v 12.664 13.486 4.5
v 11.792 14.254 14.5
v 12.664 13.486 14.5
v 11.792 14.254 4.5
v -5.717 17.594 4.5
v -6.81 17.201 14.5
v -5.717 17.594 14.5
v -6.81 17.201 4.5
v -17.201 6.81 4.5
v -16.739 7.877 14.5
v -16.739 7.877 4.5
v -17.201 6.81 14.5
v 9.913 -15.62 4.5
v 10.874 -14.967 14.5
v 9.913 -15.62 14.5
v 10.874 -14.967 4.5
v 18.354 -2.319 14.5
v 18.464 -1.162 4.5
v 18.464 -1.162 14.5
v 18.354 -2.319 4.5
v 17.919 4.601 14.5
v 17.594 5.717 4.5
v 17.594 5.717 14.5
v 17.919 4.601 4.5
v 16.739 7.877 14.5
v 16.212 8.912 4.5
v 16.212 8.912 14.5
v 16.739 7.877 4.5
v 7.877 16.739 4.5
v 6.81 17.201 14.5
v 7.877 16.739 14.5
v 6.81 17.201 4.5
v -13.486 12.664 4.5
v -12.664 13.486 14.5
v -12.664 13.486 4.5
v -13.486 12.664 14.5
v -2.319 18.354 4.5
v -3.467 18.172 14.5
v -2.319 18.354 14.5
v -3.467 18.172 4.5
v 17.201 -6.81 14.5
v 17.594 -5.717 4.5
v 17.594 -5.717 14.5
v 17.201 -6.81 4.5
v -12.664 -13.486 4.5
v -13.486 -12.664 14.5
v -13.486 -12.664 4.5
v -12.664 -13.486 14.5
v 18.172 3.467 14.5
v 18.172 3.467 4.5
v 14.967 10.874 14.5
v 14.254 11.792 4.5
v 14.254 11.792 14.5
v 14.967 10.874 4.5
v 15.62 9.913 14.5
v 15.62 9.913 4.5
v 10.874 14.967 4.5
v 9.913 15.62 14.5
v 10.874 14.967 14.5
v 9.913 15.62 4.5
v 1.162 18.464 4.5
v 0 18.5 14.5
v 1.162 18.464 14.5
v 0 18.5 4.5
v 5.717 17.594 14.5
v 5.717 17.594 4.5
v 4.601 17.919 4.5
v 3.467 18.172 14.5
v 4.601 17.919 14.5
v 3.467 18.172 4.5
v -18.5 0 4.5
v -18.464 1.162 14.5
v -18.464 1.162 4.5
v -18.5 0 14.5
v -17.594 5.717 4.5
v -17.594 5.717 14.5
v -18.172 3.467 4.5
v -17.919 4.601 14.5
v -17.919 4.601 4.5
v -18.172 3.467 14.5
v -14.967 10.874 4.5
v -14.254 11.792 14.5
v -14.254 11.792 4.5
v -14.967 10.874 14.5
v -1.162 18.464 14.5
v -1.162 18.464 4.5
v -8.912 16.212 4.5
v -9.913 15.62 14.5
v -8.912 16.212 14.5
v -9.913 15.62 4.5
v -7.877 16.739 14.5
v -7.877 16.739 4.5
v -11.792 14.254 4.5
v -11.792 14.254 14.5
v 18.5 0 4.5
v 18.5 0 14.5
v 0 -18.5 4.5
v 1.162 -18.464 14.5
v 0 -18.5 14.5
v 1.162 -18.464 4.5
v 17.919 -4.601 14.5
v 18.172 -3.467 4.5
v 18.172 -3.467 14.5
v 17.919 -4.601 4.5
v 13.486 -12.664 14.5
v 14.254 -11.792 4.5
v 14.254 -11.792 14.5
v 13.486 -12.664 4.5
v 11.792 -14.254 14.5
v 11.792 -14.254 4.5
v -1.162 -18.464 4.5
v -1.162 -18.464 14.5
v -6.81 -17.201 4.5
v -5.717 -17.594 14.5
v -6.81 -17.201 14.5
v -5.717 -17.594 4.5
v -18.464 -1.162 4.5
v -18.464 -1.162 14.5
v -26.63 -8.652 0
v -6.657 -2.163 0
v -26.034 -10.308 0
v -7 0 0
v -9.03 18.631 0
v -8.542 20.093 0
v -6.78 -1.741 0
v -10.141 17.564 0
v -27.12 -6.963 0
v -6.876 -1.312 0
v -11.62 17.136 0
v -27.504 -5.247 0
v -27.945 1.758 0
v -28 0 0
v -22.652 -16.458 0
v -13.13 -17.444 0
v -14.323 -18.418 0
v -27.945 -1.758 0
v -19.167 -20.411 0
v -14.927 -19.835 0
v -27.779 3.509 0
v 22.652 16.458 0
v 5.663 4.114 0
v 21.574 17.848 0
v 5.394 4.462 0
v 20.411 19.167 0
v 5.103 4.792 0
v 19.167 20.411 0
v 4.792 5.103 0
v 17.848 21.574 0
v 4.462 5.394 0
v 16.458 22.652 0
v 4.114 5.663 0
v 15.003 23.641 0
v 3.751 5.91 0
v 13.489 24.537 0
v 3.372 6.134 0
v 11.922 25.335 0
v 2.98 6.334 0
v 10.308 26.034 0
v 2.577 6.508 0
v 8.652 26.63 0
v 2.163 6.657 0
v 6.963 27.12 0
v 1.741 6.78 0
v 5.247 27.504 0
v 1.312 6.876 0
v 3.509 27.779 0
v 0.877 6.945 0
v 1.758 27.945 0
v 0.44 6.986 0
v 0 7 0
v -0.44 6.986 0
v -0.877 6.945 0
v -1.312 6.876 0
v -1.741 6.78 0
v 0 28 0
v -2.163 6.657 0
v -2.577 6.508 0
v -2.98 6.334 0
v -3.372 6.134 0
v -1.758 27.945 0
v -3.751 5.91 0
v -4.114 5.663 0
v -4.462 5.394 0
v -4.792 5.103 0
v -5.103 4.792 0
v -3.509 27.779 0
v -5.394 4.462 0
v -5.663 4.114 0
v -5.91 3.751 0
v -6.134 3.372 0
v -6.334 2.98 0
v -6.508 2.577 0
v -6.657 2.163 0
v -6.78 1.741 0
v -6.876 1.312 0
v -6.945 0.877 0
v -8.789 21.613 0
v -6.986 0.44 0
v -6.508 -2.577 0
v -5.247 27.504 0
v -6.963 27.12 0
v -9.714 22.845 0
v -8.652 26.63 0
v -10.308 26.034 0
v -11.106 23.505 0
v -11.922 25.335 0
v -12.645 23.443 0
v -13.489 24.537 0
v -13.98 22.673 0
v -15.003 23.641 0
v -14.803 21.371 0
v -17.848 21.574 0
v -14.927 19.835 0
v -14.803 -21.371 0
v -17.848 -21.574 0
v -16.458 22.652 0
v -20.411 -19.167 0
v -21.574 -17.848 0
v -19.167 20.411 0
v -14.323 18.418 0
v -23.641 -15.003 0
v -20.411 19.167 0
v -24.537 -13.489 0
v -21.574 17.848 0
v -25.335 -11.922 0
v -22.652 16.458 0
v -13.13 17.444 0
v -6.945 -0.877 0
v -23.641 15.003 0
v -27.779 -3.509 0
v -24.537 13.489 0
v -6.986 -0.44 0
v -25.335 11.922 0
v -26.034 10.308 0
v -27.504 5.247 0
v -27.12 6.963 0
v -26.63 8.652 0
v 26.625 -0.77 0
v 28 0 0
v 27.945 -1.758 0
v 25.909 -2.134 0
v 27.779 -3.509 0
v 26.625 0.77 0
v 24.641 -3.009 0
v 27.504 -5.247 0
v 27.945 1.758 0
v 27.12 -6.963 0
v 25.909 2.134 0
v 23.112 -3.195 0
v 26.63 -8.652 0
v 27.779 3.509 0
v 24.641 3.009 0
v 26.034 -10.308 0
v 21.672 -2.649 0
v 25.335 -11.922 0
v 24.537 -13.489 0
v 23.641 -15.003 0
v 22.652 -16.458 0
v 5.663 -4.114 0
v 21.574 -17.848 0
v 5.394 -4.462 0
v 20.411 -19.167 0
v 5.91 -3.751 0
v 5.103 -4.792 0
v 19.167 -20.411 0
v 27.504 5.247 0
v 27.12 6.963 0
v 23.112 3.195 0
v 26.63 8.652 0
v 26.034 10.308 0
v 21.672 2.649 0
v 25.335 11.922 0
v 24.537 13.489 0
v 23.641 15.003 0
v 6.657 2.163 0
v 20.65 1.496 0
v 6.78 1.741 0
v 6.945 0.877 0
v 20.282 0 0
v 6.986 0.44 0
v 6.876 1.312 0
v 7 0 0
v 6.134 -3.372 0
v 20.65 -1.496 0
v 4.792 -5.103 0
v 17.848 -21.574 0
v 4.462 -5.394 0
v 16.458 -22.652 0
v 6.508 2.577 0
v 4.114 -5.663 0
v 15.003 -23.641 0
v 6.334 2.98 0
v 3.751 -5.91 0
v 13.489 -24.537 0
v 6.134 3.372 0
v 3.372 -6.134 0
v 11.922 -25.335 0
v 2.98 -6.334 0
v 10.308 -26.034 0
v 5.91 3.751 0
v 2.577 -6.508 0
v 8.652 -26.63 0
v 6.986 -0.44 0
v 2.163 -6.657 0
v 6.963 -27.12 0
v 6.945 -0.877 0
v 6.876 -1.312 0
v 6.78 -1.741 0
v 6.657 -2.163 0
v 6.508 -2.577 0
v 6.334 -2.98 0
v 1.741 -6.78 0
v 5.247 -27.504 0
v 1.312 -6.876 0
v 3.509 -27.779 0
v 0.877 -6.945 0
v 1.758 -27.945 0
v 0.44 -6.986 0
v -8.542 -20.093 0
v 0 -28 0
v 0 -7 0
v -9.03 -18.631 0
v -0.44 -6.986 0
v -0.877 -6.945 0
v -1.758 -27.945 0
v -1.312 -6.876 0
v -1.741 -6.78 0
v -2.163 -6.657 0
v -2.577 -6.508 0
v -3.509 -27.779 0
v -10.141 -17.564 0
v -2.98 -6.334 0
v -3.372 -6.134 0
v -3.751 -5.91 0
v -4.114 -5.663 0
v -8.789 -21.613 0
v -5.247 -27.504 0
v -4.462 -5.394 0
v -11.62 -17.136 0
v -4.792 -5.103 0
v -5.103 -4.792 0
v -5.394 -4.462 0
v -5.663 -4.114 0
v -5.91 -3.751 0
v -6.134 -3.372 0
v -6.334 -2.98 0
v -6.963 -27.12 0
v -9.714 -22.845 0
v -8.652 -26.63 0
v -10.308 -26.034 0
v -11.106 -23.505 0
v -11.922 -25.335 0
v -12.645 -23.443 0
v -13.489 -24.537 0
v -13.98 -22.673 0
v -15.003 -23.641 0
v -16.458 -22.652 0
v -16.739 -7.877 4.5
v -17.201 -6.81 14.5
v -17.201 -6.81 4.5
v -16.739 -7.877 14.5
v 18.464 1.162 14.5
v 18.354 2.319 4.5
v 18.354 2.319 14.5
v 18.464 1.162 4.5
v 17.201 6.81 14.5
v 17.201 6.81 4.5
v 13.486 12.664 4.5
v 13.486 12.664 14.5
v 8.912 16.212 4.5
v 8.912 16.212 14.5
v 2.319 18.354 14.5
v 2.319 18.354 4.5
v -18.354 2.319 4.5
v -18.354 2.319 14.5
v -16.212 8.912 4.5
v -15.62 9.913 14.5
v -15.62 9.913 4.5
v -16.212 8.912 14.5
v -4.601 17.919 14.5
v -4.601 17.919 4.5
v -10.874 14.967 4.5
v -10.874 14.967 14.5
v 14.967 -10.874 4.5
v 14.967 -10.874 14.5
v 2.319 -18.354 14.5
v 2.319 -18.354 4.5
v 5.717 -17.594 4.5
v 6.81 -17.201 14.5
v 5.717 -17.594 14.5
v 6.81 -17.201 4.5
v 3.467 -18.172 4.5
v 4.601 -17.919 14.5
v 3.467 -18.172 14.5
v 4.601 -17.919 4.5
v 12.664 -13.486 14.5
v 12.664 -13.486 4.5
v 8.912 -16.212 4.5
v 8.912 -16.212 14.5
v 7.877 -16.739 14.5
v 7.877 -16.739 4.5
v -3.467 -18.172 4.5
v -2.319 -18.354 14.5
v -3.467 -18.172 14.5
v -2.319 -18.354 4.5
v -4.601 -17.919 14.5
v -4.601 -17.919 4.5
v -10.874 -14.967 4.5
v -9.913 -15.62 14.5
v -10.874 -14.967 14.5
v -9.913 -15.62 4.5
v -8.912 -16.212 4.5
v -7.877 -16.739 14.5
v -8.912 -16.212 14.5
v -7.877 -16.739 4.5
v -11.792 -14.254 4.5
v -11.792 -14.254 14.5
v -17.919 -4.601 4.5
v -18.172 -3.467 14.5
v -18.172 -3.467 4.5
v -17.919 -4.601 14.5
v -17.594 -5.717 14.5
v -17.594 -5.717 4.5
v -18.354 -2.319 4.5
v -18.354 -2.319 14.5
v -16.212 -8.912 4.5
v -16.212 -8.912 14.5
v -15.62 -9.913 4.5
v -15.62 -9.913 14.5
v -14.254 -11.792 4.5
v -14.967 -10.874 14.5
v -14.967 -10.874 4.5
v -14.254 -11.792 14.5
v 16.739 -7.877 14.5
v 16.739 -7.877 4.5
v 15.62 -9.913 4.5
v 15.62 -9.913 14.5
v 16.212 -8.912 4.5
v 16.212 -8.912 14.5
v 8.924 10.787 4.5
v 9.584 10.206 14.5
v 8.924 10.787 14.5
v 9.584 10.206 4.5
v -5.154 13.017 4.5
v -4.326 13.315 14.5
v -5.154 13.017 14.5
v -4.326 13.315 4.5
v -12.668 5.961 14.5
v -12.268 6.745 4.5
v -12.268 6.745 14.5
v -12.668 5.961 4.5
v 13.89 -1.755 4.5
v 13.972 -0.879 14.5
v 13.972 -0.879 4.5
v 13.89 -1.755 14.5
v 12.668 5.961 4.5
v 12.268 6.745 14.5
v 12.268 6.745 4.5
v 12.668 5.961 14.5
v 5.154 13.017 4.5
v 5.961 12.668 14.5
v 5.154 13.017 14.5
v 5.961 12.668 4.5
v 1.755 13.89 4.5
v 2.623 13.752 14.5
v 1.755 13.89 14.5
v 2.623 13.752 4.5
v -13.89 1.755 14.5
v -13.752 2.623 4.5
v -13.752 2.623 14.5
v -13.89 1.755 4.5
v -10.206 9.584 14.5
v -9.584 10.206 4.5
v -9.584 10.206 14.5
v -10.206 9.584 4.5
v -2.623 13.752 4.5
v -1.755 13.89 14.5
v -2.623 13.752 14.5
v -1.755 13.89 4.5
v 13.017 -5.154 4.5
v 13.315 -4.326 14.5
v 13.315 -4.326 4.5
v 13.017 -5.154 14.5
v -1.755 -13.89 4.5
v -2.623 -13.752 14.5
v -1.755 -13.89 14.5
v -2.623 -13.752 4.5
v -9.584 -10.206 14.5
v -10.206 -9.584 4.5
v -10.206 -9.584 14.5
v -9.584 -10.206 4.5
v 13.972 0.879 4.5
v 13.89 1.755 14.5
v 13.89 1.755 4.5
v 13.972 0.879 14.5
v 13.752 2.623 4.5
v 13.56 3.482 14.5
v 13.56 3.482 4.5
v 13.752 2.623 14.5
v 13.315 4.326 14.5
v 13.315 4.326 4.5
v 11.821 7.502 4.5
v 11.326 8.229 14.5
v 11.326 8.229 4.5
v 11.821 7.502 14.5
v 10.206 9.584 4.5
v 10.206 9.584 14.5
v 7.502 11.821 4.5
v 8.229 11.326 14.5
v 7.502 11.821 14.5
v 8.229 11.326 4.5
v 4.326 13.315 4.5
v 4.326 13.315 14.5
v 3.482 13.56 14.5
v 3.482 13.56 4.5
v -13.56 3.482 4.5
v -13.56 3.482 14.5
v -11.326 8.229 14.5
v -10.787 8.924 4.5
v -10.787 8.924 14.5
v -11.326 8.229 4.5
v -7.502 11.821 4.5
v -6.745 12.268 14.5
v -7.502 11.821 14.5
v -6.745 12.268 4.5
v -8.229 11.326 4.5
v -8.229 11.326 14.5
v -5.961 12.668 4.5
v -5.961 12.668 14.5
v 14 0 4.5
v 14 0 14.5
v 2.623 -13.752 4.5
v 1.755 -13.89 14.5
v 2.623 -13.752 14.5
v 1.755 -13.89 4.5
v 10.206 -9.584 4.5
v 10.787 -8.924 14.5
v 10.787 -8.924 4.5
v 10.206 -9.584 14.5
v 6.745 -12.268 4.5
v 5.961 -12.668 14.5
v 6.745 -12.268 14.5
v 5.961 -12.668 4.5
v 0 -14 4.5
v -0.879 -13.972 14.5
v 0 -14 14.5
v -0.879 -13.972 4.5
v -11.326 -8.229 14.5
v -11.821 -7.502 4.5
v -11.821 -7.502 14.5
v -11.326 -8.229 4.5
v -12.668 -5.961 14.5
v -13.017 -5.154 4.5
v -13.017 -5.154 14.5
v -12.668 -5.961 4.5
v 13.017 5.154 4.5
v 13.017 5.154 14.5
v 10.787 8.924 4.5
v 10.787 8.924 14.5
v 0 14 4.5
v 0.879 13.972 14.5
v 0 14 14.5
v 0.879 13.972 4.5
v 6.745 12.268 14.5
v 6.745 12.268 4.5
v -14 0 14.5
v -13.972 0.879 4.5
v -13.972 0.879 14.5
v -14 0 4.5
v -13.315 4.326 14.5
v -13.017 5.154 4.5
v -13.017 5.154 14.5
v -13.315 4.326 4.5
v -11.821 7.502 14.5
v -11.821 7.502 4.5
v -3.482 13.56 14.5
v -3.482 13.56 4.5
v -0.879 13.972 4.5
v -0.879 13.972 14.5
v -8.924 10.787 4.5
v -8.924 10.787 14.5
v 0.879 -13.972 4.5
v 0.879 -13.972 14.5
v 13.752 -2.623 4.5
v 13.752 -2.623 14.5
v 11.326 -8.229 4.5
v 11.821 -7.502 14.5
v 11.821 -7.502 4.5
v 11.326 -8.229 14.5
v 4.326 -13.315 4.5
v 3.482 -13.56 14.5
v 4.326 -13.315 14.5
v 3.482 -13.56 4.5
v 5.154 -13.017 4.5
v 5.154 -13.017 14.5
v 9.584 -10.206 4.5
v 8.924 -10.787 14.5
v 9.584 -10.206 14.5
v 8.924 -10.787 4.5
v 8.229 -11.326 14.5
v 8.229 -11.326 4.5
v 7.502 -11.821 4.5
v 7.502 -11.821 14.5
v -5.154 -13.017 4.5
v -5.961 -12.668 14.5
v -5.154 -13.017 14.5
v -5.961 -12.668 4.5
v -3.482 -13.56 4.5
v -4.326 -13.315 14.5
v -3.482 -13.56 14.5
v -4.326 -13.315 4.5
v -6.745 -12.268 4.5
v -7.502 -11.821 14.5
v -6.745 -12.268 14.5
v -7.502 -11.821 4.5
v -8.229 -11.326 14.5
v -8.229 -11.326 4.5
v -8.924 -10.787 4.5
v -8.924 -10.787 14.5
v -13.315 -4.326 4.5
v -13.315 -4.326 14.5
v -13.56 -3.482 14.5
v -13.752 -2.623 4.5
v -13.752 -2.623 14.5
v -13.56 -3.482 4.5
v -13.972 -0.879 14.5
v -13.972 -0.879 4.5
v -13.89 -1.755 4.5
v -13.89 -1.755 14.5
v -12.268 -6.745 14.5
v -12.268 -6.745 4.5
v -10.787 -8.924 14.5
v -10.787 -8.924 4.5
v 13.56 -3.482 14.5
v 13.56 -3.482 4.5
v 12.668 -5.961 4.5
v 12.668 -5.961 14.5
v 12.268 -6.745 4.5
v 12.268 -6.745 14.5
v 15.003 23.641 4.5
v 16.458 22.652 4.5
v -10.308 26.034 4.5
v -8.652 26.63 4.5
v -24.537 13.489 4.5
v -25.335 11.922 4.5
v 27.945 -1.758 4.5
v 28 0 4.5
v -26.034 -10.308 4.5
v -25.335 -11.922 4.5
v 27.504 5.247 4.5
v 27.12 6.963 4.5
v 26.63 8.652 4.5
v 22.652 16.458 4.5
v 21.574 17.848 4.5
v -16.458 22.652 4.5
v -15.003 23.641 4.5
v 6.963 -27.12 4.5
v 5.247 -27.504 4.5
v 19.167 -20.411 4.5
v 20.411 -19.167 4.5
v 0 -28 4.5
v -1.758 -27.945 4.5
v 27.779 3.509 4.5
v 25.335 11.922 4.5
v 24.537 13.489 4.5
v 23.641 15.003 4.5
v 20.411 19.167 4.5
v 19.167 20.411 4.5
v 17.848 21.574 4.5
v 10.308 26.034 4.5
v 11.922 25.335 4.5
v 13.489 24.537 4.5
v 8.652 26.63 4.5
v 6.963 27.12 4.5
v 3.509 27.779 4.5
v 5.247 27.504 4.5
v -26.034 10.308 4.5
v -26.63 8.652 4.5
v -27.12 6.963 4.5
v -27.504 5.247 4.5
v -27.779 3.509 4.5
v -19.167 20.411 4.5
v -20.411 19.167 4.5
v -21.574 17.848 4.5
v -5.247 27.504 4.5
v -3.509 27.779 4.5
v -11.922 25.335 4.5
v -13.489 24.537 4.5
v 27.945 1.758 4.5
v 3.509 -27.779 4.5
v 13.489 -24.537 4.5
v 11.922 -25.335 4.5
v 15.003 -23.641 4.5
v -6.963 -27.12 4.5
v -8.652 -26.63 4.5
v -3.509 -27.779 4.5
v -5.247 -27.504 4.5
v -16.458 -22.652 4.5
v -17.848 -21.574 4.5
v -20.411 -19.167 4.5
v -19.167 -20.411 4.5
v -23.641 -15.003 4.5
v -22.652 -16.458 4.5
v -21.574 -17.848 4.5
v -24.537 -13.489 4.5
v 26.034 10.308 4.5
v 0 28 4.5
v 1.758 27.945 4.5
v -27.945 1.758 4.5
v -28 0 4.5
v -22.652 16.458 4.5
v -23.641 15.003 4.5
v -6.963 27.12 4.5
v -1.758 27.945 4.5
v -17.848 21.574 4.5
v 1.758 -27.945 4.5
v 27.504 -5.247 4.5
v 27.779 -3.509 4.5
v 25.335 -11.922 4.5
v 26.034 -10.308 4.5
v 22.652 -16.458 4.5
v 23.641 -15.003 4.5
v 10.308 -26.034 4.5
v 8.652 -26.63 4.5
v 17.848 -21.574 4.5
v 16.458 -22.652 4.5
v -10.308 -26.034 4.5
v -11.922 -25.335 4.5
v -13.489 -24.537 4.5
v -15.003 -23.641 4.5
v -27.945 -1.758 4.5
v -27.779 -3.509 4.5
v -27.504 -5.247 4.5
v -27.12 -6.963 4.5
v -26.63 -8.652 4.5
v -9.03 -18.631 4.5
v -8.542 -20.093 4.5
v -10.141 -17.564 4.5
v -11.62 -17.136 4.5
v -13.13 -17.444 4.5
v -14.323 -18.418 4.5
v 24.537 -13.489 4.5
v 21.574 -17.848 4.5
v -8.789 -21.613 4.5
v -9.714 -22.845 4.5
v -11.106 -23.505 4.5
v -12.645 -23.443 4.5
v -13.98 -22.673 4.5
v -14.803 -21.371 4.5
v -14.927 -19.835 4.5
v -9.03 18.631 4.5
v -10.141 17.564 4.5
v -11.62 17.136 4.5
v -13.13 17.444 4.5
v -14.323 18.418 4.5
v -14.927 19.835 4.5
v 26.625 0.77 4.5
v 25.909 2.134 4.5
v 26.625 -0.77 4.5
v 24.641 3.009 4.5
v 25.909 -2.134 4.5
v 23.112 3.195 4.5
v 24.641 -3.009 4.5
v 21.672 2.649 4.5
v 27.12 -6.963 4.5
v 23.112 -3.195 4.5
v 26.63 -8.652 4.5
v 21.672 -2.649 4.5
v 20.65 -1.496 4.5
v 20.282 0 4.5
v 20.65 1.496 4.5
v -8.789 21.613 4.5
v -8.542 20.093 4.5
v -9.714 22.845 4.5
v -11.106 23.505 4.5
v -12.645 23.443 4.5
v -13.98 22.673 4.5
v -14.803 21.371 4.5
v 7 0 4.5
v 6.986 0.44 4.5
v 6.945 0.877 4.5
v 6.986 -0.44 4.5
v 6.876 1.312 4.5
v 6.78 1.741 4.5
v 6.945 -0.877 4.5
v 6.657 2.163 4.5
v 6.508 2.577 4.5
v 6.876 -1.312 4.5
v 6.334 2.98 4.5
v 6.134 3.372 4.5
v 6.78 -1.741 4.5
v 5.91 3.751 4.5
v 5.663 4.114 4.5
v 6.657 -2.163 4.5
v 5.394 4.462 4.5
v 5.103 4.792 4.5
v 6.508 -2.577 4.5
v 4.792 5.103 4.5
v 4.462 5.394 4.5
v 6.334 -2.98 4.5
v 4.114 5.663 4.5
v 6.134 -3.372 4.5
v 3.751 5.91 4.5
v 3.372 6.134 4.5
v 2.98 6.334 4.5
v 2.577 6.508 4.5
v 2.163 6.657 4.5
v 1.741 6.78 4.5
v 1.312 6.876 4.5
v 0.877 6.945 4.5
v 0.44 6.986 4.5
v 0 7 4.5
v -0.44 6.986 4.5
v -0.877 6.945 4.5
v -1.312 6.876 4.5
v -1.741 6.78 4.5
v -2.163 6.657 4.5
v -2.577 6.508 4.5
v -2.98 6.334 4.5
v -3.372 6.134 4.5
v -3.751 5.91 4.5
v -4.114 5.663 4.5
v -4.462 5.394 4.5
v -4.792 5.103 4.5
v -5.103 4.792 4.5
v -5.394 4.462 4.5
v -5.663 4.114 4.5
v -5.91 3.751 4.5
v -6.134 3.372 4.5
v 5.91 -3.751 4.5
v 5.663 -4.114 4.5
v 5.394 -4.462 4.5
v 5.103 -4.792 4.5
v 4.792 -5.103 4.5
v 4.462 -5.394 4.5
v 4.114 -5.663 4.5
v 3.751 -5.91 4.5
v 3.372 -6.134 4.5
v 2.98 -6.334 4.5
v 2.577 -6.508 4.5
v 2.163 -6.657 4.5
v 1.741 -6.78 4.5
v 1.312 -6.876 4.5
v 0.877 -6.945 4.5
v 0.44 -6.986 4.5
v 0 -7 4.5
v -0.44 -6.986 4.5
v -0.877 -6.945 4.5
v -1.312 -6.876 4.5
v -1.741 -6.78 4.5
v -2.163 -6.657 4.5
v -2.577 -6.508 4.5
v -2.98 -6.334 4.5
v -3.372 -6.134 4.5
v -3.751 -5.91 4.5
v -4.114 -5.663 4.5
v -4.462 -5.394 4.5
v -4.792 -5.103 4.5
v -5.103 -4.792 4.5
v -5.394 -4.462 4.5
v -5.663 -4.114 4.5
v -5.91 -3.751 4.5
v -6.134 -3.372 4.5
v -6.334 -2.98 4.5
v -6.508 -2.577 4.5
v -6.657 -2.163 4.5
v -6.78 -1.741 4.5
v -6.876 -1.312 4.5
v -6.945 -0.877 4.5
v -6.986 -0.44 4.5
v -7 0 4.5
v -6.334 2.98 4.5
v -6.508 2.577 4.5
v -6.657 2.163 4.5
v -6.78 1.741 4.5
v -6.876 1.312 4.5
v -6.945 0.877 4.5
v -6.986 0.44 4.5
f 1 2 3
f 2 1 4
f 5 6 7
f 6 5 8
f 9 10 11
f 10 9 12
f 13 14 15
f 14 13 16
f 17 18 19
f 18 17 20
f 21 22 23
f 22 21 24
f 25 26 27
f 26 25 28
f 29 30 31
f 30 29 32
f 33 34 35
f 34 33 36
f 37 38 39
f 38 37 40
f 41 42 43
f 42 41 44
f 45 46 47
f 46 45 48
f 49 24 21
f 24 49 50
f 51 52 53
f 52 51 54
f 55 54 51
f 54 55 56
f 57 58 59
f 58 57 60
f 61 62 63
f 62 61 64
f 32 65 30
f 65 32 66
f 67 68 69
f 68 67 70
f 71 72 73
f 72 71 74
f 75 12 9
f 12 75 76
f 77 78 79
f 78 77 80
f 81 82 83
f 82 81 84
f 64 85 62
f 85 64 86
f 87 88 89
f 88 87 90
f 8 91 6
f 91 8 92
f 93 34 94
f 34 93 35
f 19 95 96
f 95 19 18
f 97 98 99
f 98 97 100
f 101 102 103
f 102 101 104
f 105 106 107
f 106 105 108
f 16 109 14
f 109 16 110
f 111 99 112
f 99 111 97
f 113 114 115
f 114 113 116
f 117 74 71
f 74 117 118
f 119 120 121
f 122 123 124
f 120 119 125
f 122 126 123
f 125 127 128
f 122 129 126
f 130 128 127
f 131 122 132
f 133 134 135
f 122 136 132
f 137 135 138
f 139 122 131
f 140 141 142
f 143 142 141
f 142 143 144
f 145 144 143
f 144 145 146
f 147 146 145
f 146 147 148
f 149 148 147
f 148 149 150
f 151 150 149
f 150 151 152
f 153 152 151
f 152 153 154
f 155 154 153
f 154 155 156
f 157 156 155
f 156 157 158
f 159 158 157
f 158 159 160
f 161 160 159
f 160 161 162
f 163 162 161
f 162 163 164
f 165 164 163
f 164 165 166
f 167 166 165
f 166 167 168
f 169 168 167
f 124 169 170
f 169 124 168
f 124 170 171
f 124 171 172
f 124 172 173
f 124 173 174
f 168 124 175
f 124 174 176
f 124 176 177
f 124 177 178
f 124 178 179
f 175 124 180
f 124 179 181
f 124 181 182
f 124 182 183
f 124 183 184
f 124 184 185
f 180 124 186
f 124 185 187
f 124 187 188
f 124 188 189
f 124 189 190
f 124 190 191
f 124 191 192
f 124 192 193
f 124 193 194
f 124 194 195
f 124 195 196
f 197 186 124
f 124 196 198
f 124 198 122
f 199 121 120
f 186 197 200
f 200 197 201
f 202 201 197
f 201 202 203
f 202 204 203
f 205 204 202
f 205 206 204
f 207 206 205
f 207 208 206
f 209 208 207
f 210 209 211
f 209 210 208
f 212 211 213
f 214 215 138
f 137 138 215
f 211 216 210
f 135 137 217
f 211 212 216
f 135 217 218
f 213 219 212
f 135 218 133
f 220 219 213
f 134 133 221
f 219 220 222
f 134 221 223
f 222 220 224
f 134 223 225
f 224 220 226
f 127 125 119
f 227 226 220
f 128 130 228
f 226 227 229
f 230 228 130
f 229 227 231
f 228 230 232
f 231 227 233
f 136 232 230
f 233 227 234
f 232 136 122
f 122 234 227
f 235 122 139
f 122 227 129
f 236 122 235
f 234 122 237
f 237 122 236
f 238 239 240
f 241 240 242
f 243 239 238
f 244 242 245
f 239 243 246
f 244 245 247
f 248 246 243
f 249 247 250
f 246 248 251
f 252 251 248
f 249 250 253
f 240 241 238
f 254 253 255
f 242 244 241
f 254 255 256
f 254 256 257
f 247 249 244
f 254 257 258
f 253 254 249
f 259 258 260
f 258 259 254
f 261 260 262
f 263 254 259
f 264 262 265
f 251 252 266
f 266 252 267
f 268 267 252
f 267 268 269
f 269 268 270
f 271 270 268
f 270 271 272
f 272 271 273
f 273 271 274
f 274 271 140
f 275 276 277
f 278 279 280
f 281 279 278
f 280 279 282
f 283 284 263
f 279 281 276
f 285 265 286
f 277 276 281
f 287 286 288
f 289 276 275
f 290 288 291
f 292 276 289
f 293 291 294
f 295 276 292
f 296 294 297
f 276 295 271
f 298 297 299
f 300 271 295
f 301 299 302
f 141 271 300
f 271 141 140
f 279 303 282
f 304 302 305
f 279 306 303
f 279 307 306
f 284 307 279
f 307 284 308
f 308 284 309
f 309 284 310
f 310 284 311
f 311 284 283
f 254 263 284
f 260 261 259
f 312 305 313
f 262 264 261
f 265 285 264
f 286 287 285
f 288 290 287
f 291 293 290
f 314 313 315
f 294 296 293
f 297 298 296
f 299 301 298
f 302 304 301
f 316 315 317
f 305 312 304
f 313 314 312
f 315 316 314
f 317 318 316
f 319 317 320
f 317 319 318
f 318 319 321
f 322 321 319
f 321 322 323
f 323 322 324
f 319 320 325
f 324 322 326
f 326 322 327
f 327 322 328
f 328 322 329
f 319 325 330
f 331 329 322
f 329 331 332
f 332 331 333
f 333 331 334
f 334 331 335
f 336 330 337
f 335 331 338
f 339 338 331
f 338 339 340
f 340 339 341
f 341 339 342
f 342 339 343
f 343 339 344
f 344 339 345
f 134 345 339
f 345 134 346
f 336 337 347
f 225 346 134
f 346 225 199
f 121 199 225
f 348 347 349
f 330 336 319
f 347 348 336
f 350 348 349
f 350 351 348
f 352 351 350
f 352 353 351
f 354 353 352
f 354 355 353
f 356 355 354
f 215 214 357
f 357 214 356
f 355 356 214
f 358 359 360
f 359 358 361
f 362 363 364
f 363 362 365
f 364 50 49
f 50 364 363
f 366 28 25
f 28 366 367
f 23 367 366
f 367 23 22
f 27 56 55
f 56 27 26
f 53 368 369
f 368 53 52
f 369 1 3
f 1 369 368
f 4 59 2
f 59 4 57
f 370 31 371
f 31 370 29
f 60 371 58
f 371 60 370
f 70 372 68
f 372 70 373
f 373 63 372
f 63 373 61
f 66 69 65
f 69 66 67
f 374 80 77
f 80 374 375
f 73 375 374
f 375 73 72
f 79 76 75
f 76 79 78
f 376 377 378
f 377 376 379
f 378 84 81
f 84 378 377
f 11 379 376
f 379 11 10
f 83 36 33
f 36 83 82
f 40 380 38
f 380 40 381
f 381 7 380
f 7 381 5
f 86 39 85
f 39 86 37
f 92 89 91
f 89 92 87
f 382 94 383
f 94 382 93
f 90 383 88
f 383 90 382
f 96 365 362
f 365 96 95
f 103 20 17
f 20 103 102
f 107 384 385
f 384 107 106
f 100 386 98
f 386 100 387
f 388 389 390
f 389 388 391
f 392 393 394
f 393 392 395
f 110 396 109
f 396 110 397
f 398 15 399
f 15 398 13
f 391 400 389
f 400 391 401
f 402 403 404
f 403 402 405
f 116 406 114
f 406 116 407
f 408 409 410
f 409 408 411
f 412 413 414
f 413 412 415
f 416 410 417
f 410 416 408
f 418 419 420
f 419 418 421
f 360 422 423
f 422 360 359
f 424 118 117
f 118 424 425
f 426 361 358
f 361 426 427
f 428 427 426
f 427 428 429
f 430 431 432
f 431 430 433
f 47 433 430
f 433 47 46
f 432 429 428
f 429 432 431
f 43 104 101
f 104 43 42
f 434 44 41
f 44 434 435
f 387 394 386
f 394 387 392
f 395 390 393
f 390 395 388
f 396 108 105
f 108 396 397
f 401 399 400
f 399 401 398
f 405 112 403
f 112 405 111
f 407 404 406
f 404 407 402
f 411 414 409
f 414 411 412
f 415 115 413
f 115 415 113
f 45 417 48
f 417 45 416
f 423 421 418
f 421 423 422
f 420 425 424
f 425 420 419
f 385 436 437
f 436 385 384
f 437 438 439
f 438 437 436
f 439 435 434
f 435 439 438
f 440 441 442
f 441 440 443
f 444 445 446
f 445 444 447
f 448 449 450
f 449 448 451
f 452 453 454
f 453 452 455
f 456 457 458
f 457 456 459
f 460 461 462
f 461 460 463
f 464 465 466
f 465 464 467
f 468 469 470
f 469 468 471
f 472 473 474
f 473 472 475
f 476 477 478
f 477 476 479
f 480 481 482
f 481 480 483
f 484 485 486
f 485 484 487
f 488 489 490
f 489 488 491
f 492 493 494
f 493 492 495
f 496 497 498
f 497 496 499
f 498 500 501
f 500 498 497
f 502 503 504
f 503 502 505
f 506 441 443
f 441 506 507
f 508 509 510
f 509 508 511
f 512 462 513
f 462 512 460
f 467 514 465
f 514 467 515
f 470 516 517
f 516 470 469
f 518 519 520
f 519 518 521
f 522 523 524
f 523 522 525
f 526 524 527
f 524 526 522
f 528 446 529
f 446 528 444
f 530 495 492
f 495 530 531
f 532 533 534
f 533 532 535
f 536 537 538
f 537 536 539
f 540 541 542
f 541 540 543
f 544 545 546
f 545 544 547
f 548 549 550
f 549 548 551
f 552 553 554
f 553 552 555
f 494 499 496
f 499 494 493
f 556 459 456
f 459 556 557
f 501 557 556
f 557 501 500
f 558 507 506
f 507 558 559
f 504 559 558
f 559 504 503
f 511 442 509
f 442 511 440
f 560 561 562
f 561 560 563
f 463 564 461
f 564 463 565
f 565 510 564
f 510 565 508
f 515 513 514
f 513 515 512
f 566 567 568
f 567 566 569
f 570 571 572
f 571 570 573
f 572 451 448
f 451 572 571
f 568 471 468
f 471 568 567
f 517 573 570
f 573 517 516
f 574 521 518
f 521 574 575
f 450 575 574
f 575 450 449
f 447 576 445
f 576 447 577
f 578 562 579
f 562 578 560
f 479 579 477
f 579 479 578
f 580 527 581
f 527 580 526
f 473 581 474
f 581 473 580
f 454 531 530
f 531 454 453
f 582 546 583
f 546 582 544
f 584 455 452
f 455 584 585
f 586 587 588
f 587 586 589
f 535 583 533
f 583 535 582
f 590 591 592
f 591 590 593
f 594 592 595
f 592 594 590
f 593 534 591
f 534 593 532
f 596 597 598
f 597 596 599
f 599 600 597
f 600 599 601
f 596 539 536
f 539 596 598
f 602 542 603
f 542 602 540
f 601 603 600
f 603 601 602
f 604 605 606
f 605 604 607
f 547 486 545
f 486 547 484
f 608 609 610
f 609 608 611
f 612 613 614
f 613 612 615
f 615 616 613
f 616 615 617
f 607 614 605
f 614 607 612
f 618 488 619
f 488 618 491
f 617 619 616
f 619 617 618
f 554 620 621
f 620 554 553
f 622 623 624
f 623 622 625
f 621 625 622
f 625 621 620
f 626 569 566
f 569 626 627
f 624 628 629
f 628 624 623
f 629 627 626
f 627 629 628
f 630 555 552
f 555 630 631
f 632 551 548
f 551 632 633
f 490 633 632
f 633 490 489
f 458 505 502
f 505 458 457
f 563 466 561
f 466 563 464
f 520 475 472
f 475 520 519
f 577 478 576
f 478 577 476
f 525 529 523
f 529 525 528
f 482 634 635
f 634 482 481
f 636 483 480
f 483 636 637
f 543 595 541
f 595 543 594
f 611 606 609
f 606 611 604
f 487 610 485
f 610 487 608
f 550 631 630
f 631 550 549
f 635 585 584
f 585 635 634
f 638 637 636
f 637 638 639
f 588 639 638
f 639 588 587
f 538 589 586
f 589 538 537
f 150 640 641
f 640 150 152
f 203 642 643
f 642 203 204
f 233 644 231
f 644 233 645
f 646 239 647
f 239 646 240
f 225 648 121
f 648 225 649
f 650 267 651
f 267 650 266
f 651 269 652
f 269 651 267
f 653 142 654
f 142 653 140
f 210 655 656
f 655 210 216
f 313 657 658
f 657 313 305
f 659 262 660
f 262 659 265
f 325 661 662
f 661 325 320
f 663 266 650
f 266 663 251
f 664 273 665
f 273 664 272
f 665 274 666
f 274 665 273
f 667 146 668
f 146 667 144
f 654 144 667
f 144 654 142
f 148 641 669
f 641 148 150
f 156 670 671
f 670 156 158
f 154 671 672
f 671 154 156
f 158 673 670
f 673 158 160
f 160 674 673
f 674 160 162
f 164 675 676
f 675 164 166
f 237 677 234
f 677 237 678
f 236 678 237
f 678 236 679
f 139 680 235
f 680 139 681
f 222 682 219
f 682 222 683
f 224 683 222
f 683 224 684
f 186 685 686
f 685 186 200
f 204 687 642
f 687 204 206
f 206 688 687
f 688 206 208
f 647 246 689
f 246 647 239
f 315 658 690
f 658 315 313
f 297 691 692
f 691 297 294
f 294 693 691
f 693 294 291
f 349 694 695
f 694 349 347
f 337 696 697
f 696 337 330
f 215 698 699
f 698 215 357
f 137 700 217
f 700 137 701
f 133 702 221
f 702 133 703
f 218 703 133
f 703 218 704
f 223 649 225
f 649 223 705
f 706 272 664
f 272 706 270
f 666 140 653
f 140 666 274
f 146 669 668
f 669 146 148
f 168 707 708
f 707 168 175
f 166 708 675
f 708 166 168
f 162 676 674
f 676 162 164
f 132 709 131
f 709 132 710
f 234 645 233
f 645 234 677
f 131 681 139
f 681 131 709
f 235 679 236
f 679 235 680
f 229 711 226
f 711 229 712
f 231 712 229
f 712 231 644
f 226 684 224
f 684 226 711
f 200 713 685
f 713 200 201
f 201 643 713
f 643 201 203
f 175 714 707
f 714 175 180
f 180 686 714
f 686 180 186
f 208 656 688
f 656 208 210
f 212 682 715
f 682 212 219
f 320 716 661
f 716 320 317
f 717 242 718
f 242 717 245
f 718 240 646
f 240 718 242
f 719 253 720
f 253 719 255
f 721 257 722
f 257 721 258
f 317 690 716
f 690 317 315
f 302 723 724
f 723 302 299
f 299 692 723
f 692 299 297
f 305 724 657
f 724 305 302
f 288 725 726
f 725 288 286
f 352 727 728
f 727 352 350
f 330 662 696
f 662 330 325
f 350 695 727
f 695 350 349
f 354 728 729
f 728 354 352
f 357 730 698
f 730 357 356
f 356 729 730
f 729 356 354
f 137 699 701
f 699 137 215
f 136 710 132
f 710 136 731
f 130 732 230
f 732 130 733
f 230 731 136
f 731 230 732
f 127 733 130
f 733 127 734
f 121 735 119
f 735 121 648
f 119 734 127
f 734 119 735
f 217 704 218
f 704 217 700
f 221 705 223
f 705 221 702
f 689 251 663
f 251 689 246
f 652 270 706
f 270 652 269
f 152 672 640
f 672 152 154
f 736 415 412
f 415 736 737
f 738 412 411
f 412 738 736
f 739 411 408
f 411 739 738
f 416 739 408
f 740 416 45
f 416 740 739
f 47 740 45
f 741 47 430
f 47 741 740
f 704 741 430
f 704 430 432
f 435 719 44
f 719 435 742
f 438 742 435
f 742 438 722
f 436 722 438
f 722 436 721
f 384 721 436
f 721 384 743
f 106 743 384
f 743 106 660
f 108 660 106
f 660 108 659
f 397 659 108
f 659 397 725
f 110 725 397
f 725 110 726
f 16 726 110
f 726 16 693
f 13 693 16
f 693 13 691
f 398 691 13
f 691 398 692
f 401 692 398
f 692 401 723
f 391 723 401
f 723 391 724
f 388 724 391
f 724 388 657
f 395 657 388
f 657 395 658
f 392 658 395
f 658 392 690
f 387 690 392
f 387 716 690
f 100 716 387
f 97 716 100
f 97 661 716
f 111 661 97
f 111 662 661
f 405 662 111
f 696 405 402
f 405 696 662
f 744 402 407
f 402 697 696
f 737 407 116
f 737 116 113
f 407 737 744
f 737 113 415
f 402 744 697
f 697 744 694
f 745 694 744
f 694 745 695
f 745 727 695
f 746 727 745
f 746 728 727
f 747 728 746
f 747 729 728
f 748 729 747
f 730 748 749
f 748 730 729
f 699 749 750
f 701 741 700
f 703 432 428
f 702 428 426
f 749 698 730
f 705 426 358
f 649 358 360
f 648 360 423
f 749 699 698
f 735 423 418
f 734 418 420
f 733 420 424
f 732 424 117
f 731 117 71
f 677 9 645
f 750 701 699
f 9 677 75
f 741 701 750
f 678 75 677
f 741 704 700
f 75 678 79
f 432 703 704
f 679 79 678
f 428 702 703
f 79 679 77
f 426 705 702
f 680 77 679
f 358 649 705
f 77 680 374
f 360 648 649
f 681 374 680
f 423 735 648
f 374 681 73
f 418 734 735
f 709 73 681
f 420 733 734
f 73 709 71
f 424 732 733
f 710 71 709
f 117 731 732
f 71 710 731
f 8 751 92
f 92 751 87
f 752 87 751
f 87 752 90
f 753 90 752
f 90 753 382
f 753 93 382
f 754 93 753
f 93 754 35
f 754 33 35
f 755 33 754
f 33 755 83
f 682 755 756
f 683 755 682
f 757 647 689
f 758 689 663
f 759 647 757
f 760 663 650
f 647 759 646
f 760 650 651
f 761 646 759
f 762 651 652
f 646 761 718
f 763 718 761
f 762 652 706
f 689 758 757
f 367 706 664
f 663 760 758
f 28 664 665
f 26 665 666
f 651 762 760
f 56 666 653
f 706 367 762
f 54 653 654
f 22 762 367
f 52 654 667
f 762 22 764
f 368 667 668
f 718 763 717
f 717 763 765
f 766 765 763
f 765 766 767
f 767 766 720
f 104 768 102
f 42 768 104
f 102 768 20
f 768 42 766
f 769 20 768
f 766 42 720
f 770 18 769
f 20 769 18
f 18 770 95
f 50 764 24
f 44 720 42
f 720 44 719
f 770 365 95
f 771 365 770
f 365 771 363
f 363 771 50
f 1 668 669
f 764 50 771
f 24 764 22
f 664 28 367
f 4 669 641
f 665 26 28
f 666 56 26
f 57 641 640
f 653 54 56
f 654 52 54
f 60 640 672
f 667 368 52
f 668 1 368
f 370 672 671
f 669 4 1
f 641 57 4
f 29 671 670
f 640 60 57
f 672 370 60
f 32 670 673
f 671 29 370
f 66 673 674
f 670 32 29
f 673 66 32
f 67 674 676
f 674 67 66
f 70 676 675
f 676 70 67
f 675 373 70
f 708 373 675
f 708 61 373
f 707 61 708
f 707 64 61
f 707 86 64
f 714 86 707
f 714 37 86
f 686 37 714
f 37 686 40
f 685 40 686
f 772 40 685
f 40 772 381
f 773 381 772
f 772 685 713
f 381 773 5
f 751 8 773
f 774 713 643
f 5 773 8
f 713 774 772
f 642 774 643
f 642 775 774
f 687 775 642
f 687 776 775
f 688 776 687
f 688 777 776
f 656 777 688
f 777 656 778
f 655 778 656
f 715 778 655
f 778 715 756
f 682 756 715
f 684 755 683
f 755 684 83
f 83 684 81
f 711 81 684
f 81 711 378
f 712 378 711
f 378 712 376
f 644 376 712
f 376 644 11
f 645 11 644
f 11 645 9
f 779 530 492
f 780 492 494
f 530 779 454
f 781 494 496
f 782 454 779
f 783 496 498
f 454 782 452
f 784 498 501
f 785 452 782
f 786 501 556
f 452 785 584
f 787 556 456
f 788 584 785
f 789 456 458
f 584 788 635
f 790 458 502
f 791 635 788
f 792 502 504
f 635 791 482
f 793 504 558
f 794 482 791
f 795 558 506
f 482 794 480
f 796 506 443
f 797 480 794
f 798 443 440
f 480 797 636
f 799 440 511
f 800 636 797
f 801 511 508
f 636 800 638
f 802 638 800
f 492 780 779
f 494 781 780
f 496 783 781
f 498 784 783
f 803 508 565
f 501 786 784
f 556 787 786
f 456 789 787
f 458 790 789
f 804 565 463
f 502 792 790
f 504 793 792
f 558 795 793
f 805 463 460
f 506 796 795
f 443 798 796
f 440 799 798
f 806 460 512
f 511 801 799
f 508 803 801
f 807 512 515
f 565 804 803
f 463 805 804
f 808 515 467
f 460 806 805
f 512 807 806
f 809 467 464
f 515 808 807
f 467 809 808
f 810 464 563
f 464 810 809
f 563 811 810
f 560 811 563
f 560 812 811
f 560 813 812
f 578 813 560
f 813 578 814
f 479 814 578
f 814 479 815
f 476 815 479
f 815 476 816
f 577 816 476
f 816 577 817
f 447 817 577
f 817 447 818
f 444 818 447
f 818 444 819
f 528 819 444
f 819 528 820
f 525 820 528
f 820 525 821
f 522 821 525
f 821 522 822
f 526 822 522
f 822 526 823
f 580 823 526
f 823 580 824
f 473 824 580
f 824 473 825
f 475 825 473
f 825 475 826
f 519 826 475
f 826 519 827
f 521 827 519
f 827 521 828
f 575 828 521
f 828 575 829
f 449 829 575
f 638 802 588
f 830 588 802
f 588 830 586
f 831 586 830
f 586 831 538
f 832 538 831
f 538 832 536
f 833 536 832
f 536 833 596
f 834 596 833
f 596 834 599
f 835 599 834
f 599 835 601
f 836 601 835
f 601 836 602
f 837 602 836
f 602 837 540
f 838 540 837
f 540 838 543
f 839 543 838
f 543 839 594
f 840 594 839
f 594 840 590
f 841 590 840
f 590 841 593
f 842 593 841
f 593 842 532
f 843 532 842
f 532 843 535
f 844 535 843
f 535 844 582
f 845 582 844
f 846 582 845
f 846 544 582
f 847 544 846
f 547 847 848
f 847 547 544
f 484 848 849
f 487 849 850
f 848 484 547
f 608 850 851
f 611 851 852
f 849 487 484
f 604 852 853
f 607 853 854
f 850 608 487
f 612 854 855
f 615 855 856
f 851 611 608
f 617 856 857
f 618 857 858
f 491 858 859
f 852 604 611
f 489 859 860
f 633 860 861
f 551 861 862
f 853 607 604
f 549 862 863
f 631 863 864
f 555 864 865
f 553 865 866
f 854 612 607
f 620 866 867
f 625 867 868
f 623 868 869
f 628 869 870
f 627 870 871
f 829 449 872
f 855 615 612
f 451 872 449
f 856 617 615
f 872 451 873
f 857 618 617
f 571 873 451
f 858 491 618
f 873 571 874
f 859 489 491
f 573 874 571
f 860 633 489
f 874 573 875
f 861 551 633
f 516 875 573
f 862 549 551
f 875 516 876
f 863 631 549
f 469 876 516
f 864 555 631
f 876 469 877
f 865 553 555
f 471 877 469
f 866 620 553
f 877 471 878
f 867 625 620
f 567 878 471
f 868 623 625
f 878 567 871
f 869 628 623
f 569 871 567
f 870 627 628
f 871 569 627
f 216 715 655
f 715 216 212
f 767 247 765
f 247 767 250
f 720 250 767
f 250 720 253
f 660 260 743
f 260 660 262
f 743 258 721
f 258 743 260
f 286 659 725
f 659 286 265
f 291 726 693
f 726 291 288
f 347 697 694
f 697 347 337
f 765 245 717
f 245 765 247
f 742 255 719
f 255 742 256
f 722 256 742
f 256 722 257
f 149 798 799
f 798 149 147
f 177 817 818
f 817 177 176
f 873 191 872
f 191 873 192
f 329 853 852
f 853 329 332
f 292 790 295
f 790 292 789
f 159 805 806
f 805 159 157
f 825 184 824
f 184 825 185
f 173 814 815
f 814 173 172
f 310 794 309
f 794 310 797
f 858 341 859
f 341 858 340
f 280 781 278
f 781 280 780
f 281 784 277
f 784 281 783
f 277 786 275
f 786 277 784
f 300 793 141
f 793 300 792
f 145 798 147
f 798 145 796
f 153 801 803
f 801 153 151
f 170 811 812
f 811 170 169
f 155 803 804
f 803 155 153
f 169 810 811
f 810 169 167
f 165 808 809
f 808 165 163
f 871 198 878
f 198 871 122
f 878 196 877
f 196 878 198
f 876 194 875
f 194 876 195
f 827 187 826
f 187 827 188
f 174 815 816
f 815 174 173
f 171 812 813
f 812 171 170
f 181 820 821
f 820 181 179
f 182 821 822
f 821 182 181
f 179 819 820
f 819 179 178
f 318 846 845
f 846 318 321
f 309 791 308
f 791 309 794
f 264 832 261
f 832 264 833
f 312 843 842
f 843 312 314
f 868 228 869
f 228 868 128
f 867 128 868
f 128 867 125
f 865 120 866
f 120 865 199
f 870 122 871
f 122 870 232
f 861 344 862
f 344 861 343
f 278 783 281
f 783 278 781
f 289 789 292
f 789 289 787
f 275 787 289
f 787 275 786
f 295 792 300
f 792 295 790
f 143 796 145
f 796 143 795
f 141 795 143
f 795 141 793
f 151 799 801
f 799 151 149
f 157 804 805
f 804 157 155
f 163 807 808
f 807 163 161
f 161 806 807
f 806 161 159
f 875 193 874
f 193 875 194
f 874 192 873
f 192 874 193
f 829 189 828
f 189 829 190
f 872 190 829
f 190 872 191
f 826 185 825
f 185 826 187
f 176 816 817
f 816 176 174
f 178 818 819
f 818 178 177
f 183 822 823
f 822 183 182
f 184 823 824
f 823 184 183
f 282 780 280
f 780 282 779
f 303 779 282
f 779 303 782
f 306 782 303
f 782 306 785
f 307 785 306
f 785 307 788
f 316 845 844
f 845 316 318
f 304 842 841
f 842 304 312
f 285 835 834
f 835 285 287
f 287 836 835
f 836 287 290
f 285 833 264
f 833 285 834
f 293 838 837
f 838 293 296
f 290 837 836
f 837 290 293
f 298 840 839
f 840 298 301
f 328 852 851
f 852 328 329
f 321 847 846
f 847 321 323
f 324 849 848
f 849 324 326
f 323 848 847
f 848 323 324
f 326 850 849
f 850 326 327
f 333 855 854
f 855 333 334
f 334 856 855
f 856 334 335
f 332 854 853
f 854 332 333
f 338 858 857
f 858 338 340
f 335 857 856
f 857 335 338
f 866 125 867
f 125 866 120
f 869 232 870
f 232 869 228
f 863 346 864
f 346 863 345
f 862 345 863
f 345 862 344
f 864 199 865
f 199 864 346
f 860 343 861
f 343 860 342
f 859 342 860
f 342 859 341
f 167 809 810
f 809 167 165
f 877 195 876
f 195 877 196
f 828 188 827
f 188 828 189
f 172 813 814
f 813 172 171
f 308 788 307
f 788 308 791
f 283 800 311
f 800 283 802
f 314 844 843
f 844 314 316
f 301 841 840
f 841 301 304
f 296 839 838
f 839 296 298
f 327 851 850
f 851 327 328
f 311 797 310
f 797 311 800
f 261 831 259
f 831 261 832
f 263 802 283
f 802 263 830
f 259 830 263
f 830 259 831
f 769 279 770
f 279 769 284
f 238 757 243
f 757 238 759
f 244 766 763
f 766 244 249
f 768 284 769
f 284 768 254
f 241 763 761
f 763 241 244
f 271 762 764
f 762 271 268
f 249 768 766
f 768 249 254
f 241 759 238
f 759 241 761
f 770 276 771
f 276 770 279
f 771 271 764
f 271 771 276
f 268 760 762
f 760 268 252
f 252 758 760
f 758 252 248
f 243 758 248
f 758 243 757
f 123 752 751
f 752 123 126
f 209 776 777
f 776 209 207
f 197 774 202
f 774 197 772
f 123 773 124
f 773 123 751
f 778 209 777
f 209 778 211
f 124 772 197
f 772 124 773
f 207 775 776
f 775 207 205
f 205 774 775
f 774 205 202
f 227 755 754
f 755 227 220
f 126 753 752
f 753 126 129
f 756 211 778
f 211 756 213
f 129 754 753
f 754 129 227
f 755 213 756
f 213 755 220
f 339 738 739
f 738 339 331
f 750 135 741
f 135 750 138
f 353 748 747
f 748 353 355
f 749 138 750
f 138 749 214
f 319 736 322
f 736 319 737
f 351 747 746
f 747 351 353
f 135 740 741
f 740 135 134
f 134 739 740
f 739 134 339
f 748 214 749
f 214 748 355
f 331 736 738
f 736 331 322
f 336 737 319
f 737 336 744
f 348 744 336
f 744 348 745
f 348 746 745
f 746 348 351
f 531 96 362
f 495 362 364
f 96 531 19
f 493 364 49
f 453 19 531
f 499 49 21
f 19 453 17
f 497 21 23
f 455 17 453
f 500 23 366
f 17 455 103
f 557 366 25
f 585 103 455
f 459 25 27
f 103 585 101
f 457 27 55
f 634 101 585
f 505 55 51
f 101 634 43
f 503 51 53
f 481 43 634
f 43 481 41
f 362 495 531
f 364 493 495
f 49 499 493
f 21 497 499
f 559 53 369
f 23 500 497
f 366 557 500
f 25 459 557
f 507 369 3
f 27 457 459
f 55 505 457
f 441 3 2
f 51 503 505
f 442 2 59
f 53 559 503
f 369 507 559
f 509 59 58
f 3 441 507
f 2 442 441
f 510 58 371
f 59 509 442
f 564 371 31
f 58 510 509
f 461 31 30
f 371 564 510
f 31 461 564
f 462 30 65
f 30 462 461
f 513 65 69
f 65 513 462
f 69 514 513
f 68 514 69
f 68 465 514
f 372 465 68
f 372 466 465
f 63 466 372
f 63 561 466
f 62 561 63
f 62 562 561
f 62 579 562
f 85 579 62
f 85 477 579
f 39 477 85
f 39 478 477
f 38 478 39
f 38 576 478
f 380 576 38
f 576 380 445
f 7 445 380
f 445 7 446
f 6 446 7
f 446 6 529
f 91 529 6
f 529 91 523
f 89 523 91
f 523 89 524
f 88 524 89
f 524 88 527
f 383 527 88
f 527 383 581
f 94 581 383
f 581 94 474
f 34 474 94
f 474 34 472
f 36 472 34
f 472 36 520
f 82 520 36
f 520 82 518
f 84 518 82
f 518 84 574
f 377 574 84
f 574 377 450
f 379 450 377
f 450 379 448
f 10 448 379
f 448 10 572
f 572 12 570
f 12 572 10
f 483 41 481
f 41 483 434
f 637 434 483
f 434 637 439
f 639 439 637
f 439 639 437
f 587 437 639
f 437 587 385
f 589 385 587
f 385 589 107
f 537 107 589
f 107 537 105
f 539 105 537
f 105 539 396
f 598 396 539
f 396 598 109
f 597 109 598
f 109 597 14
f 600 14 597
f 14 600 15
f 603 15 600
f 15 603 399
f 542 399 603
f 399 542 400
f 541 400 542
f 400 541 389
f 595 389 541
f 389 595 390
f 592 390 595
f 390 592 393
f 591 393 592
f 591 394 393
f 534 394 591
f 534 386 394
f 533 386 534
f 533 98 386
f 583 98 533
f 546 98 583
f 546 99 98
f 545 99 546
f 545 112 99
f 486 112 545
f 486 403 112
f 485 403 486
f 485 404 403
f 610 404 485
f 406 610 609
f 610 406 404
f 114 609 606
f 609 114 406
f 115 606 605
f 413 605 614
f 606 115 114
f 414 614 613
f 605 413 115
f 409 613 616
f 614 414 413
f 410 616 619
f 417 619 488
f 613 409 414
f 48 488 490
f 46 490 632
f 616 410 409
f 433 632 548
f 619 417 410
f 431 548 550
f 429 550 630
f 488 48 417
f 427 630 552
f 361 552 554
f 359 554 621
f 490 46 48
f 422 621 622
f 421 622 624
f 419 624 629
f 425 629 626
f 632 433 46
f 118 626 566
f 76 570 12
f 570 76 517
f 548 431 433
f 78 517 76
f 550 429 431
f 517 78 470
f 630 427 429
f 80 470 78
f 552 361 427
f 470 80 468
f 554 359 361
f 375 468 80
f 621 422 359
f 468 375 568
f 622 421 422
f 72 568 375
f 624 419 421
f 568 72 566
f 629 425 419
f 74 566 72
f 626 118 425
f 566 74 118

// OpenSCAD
use <MCAD/polyholes.scad>;

$fn=100;

flange_r = 28.0;
core_r  =  18.5;
core_wall_thickness = 4.5;
shaft_hole_r = 7.0;
flange_thickness = 4.5;
bobbin_length = 29.0;

mount_bolt_d = 6.25;
mount_bolt_offset = 18.5 + 5.0;
//(flange_r - (core_r + core_wall_thickness)) / 2.0 + core_r + core_wall_thickness;

// core
difference() {
    union() {
        difference() {
            cylinder(r= core_r, h= bobbin_length);
            cylinder(r = core_r - core_wall_thickness, h=bobbin_length);
        }
        
        cylinder(r= flange_r, h= flange_thickness);
        translate([0, 0, bobbin_length - flange_thickness]) cylinder(r= flange_r, h= flange_thickness);
    }
    
    // shaft hole
    cylinder(r = shaft_hole_r, h=bobbin_length);
    // mount holes
    translate([mount_bolt_offset, 0, 0]) polyhole(d=mount_bolt_d, h= flange_thickness);
    rotate([0,0,120]) translate([mount_bolt_offset, 0, 0]) polyhole(d=mount_bolt_d, h= flange_thickness);
    rotate([0,0,-120]) translate([mount_bolt_offset, 0, 0]) polyhole(d=mount_bolt_d, h= flange_thickness);
    translate([-flange_r, -flange_r, bobbin_length / 2.0]) cube([flange_r * 2.0, flange_r * 2.0, bobbin_length / 2.0]);
}
